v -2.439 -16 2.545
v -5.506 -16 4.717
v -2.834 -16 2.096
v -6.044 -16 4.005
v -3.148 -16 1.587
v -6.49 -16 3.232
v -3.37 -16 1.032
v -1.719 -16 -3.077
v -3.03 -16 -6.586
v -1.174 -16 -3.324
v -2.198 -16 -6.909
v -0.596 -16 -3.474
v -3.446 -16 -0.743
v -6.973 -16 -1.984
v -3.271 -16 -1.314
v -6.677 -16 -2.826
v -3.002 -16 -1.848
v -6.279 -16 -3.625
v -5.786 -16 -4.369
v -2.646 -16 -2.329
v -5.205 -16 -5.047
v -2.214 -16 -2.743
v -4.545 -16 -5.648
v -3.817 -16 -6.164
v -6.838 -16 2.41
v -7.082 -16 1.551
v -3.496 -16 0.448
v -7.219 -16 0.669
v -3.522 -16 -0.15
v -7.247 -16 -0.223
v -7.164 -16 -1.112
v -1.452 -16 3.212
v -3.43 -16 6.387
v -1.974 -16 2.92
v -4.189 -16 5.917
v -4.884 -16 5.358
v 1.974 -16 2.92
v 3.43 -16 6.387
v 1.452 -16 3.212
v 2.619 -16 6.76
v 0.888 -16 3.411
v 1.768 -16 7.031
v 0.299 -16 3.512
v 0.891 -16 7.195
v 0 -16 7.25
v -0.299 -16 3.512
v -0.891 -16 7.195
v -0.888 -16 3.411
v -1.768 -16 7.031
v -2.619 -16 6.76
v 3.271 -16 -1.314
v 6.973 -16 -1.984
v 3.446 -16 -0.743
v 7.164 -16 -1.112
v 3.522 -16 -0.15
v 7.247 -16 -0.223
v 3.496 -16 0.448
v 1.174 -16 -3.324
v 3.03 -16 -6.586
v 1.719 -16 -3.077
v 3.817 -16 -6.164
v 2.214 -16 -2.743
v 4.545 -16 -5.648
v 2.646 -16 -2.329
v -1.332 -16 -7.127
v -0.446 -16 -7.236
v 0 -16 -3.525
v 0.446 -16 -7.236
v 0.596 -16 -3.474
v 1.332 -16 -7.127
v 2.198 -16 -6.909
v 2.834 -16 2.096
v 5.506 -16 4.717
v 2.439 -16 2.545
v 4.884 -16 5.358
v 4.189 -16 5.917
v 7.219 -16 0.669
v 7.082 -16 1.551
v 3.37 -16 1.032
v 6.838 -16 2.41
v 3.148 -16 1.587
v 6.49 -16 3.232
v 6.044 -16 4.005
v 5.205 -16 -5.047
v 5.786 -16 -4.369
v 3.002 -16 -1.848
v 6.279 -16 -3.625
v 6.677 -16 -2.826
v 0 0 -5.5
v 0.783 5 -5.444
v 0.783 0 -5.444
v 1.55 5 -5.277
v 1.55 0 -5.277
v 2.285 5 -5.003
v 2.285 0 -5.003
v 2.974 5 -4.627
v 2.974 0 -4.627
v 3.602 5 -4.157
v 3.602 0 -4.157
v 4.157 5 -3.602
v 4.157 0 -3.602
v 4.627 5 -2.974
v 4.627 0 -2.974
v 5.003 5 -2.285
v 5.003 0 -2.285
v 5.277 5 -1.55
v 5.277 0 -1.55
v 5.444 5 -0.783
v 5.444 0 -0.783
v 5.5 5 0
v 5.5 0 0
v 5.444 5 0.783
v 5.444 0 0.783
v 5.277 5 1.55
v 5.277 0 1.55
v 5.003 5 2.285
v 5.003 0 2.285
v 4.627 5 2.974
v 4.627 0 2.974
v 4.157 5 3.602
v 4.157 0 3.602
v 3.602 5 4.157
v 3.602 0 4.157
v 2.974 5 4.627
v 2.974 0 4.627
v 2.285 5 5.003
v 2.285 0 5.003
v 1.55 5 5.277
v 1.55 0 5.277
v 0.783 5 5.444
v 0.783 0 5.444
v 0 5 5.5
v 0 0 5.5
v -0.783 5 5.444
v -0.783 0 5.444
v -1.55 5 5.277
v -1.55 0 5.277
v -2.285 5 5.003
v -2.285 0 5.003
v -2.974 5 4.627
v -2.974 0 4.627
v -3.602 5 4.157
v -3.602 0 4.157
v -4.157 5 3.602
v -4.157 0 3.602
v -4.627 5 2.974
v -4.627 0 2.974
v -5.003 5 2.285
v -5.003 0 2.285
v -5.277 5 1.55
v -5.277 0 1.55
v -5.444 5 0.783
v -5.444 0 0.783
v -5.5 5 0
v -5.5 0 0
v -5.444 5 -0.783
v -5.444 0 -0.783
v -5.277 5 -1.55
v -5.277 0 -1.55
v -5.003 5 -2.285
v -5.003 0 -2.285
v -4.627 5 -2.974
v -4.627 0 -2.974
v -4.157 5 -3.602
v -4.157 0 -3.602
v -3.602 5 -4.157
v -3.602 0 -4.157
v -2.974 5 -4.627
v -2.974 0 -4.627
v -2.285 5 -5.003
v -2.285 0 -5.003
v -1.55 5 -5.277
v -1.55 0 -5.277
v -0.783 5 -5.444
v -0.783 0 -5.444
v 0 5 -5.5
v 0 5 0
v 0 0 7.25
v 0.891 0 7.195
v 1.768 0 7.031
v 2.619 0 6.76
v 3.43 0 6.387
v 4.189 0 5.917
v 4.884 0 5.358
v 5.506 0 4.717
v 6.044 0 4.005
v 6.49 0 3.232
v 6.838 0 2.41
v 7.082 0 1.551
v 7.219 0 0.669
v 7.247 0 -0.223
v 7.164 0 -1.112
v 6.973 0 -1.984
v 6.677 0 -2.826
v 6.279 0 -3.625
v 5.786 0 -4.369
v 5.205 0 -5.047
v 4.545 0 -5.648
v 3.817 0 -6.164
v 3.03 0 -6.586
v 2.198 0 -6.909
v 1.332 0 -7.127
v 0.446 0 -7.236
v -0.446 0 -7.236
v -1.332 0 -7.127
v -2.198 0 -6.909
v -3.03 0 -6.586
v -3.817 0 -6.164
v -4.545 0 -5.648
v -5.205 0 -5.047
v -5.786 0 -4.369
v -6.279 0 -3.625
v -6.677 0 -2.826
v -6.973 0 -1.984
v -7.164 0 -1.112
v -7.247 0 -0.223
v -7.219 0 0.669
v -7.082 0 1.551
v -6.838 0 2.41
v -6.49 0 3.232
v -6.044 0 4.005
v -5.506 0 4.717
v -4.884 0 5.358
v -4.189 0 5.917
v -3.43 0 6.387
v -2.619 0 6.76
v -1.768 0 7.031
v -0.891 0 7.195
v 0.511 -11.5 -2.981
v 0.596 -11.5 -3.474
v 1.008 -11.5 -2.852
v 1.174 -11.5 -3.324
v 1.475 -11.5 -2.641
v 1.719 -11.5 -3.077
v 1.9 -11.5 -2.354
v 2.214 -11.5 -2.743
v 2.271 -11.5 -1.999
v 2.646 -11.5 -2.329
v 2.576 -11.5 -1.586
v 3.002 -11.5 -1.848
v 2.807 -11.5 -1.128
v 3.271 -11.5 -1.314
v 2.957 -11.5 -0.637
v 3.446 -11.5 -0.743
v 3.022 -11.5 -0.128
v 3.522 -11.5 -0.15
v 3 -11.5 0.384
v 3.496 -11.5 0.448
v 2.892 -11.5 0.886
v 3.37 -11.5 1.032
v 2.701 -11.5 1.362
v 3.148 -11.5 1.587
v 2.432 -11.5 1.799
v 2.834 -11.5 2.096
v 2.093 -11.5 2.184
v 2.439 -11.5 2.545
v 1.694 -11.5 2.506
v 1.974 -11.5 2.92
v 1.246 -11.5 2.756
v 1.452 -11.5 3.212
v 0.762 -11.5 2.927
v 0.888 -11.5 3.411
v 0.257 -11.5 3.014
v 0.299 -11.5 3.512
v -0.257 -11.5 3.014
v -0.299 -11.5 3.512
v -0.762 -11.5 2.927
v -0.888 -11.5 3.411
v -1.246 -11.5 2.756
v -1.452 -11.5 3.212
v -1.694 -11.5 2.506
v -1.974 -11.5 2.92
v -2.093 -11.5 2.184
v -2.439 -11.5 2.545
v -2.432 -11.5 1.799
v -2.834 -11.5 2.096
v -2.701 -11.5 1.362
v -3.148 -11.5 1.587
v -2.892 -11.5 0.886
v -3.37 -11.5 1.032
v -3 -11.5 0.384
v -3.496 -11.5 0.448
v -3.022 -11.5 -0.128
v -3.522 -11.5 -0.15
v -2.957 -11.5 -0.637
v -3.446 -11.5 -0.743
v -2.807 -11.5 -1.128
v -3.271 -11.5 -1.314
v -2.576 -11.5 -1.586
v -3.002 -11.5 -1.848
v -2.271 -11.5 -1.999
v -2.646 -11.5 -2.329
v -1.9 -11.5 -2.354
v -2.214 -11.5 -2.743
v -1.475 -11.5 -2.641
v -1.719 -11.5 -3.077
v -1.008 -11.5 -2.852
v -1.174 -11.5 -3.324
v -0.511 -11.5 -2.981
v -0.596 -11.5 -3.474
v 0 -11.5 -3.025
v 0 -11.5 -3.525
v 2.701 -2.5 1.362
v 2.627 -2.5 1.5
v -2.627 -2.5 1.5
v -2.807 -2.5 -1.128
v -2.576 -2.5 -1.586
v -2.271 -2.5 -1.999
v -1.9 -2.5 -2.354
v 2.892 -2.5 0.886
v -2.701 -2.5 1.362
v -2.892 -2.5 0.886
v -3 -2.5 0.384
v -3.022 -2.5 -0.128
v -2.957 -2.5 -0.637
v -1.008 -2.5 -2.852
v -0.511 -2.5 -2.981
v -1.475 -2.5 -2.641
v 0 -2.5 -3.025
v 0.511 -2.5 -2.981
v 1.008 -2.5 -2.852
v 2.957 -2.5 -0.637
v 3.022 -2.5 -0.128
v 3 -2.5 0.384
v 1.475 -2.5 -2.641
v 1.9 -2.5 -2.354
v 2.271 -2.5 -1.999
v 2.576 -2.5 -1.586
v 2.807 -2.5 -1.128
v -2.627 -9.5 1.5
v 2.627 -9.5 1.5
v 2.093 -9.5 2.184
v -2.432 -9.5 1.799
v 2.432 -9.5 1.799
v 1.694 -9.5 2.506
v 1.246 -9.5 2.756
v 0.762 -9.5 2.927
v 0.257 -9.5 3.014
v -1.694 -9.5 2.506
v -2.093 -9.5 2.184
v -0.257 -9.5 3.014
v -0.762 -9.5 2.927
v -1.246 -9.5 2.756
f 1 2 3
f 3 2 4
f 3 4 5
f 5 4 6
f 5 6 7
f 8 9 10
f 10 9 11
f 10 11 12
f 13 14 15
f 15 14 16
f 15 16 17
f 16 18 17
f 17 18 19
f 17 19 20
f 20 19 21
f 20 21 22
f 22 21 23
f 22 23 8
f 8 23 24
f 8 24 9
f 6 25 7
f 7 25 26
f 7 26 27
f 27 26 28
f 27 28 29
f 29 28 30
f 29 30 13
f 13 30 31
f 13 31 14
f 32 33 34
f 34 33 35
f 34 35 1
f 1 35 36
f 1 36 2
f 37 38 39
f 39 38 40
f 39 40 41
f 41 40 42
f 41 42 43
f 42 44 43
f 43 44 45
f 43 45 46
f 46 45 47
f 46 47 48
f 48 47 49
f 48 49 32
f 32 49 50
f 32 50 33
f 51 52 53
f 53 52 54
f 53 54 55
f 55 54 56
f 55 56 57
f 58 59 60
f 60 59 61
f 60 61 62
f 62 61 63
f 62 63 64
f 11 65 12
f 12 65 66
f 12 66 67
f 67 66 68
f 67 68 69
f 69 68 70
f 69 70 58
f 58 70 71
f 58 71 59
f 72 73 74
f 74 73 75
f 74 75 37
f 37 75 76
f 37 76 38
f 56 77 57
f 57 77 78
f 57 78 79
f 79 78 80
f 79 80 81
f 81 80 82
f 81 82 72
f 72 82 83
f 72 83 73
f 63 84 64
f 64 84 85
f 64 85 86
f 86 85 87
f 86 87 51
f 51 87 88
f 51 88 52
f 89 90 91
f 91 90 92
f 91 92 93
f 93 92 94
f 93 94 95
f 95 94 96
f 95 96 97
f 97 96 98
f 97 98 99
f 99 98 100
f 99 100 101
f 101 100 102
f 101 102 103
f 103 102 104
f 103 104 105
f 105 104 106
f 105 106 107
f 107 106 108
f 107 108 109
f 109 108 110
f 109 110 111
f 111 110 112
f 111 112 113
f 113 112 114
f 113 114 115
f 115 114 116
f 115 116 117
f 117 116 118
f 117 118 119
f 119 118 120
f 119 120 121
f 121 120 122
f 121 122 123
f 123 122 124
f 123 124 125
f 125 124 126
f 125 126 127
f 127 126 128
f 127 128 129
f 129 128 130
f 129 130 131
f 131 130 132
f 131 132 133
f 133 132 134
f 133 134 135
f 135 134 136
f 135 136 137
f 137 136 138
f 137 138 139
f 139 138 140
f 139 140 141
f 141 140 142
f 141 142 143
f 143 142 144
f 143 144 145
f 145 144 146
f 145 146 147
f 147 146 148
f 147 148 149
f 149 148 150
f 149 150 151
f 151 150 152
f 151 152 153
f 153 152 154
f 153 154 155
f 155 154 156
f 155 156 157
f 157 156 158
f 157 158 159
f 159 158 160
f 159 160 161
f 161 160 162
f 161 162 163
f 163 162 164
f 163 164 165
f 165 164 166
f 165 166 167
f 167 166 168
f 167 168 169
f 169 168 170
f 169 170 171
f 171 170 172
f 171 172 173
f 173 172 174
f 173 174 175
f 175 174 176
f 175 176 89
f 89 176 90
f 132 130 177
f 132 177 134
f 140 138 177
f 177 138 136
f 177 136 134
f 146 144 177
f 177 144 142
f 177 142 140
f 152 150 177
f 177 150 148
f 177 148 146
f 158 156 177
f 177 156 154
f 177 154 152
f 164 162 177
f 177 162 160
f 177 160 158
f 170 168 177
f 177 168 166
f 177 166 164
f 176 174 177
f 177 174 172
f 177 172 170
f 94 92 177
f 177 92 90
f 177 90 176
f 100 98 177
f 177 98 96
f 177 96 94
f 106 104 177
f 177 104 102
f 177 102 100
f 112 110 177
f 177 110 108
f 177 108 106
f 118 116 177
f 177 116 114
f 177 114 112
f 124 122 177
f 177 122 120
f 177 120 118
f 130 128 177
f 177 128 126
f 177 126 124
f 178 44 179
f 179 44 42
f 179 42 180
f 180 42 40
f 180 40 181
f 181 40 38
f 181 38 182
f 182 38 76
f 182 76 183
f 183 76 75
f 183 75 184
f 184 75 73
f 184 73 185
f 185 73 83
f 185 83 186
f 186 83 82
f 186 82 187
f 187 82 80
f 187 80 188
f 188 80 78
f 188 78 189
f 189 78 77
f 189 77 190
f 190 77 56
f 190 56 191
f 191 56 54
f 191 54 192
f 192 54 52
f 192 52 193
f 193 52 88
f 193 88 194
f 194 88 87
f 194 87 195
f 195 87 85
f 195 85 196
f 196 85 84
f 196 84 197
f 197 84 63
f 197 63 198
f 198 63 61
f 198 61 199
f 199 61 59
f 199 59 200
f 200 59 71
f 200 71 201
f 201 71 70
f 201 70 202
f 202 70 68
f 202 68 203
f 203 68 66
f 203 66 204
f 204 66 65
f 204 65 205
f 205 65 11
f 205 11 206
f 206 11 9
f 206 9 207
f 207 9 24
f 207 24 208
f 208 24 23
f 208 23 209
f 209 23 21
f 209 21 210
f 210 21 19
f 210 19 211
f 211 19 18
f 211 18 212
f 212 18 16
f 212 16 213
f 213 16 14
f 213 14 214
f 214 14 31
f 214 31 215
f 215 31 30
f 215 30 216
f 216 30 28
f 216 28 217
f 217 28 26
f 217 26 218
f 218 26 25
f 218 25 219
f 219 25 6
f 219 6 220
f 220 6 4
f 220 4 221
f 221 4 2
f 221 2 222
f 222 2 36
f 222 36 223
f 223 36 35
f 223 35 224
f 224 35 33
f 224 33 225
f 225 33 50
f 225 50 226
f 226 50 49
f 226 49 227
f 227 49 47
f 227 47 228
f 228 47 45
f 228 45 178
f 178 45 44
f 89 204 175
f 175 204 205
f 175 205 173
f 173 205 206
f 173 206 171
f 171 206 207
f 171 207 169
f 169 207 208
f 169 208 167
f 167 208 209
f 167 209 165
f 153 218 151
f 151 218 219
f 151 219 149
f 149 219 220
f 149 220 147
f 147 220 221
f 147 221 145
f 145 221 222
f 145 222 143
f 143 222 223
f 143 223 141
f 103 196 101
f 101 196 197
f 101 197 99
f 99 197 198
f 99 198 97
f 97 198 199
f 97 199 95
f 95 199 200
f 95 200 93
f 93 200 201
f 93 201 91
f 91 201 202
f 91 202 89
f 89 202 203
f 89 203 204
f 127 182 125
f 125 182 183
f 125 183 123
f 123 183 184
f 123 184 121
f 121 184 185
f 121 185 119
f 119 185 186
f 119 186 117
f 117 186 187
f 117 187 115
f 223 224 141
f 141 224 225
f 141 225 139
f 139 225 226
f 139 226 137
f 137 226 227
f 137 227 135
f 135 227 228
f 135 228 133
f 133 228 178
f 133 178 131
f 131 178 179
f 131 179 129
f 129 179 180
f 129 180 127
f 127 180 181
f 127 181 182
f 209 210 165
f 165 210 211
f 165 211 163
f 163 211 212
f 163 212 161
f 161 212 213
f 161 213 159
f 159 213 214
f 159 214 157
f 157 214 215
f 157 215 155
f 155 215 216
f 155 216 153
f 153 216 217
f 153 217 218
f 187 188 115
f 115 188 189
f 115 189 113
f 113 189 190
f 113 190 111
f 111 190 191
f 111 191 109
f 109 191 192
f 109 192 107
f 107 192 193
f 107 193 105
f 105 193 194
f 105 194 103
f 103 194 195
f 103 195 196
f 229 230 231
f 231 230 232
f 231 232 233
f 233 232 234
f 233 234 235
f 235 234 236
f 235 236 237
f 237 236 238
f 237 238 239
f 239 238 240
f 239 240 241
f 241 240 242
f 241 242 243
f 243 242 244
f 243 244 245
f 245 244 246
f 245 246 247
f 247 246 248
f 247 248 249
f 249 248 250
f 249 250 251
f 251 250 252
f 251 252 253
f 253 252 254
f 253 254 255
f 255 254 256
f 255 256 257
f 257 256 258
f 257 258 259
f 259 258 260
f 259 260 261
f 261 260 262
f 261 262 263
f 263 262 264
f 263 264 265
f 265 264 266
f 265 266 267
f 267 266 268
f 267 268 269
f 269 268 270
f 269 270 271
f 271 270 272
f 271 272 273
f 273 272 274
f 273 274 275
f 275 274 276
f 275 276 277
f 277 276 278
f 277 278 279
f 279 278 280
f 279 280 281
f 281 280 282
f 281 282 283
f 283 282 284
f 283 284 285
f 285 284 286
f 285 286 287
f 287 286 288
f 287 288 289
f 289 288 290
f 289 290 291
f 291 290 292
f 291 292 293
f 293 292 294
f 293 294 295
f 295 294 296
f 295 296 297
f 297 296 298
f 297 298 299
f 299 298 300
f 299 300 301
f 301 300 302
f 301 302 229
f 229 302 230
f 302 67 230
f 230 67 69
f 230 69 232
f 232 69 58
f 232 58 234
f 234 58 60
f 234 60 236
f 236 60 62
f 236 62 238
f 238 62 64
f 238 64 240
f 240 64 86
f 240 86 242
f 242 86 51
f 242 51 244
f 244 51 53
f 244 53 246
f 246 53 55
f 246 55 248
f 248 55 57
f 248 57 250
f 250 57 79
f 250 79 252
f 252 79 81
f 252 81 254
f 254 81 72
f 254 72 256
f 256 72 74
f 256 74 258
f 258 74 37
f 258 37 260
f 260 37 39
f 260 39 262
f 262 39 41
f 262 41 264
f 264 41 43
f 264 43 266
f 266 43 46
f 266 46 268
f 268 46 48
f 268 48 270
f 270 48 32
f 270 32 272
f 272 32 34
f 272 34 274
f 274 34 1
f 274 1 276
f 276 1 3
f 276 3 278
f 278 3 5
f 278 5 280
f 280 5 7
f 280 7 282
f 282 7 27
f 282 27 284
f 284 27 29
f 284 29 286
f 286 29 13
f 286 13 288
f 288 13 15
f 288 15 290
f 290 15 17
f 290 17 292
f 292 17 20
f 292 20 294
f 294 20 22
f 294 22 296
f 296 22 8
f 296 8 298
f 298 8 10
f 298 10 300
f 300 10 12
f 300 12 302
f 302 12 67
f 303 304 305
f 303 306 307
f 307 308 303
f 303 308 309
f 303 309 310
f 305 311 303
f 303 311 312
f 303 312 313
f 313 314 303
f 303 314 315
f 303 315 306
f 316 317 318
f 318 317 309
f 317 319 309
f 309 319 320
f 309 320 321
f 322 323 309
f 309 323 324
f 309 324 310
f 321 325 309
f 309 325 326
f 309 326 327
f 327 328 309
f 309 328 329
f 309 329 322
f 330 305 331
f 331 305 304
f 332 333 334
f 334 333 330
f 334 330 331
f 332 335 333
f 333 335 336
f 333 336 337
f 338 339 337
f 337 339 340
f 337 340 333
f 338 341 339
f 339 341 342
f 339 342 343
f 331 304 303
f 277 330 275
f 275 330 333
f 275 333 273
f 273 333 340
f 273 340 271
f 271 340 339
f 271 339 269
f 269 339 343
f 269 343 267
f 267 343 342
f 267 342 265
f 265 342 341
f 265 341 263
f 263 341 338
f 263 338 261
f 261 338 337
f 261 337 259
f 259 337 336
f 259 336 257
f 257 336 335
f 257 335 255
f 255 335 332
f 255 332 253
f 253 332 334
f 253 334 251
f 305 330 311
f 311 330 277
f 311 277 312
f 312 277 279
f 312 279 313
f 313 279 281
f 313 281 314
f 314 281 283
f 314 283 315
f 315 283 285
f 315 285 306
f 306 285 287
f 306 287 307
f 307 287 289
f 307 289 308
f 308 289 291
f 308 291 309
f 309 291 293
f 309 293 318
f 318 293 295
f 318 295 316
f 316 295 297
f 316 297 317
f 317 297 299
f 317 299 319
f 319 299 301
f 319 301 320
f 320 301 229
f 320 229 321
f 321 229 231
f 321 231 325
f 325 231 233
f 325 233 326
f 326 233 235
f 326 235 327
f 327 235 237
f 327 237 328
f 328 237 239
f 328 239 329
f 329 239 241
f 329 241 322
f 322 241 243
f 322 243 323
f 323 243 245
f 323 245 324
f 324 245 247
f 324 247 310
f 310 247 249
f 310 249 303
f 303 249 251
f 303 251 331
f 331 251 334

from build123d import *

# Parameters (mm, degrees)
SKETCH_1_R          = 5.5
EXTRUDE_1_DEPTH     = 5
SKETCH_2_R          = 7.25
EXTRUDE_2_DEPTH     = 16
CUT_EXTRUDE_1_DEPTH = 13.5
SKETCH_4_R          = 3.025
CUT_EXTRUDE_2_DEPTH = 6.5
SKETCH_5_R          = 3.525
CUT_EXTRUDE_3_DEPTH = 4.5


with BuildPart() as part:
    # Эскиз1 → Бобышка-Вытянуть1 (new body)
    with BuildSketch(Plane(origin=(0, 0, 0), x_dir=(1, 0, 0), z_dir=(0, 1, 0))):
        Circle(SKETCH_1_R)
    extrude(amount=EXTRUDE_1_DEPTH)

    # Эскиз2 → Бобышка-Вытянуть2 (add)
    with BuildSketch(Plane(origin=(0, 0, 0), x_dir=(1, 0, 0), z_dir=(0, 1, 0))):
        Circle(SKETCH_2_R)
    extrude(amount=-EXTRUDE_2_DEPTH)

    # Эскиз3 → Вырез-Вытянуть1 (cut)
    with BuildSketch(Plane.XZ.offset(16)):
        with BuildLine():
            Line((2.626904071, 1.5), (-2.626904071, 1.5))
            ThreePointArc((-2.626904071, 1.5), (-0.775963976, -2.923782637), (3.025, 0))
            ThreePointArc((3.025, 0), (2.923782637, 0.775963976), (2.626904071, 1.5))
        make_face()
    extrude(amount=-CUT_EXTRUDE_1_DEPTH, mode=Mode.SUBTRACT)

    # Эскиз4 → Вырез-Вытянуть2 (cut)
    with BuildSketch(Plane.XZ.offset(16)):
        Circle(SKETCH_4_R)
    extrude(amount=-CUT_EXTRUDE_2_DEPTH, mode=Mode.SUBTRACT)

    # Эскиз5 → Вырез-Вытянуть3 (cut)
    with BuildSketch(Plane.XZ.offset(16)):
        Circle(SKETCH_5_R)
    extrude(amount=-CUT_EXTRUDE_3_DEPTH, mode=Mode.SUBTRACT)


solid = part.part
